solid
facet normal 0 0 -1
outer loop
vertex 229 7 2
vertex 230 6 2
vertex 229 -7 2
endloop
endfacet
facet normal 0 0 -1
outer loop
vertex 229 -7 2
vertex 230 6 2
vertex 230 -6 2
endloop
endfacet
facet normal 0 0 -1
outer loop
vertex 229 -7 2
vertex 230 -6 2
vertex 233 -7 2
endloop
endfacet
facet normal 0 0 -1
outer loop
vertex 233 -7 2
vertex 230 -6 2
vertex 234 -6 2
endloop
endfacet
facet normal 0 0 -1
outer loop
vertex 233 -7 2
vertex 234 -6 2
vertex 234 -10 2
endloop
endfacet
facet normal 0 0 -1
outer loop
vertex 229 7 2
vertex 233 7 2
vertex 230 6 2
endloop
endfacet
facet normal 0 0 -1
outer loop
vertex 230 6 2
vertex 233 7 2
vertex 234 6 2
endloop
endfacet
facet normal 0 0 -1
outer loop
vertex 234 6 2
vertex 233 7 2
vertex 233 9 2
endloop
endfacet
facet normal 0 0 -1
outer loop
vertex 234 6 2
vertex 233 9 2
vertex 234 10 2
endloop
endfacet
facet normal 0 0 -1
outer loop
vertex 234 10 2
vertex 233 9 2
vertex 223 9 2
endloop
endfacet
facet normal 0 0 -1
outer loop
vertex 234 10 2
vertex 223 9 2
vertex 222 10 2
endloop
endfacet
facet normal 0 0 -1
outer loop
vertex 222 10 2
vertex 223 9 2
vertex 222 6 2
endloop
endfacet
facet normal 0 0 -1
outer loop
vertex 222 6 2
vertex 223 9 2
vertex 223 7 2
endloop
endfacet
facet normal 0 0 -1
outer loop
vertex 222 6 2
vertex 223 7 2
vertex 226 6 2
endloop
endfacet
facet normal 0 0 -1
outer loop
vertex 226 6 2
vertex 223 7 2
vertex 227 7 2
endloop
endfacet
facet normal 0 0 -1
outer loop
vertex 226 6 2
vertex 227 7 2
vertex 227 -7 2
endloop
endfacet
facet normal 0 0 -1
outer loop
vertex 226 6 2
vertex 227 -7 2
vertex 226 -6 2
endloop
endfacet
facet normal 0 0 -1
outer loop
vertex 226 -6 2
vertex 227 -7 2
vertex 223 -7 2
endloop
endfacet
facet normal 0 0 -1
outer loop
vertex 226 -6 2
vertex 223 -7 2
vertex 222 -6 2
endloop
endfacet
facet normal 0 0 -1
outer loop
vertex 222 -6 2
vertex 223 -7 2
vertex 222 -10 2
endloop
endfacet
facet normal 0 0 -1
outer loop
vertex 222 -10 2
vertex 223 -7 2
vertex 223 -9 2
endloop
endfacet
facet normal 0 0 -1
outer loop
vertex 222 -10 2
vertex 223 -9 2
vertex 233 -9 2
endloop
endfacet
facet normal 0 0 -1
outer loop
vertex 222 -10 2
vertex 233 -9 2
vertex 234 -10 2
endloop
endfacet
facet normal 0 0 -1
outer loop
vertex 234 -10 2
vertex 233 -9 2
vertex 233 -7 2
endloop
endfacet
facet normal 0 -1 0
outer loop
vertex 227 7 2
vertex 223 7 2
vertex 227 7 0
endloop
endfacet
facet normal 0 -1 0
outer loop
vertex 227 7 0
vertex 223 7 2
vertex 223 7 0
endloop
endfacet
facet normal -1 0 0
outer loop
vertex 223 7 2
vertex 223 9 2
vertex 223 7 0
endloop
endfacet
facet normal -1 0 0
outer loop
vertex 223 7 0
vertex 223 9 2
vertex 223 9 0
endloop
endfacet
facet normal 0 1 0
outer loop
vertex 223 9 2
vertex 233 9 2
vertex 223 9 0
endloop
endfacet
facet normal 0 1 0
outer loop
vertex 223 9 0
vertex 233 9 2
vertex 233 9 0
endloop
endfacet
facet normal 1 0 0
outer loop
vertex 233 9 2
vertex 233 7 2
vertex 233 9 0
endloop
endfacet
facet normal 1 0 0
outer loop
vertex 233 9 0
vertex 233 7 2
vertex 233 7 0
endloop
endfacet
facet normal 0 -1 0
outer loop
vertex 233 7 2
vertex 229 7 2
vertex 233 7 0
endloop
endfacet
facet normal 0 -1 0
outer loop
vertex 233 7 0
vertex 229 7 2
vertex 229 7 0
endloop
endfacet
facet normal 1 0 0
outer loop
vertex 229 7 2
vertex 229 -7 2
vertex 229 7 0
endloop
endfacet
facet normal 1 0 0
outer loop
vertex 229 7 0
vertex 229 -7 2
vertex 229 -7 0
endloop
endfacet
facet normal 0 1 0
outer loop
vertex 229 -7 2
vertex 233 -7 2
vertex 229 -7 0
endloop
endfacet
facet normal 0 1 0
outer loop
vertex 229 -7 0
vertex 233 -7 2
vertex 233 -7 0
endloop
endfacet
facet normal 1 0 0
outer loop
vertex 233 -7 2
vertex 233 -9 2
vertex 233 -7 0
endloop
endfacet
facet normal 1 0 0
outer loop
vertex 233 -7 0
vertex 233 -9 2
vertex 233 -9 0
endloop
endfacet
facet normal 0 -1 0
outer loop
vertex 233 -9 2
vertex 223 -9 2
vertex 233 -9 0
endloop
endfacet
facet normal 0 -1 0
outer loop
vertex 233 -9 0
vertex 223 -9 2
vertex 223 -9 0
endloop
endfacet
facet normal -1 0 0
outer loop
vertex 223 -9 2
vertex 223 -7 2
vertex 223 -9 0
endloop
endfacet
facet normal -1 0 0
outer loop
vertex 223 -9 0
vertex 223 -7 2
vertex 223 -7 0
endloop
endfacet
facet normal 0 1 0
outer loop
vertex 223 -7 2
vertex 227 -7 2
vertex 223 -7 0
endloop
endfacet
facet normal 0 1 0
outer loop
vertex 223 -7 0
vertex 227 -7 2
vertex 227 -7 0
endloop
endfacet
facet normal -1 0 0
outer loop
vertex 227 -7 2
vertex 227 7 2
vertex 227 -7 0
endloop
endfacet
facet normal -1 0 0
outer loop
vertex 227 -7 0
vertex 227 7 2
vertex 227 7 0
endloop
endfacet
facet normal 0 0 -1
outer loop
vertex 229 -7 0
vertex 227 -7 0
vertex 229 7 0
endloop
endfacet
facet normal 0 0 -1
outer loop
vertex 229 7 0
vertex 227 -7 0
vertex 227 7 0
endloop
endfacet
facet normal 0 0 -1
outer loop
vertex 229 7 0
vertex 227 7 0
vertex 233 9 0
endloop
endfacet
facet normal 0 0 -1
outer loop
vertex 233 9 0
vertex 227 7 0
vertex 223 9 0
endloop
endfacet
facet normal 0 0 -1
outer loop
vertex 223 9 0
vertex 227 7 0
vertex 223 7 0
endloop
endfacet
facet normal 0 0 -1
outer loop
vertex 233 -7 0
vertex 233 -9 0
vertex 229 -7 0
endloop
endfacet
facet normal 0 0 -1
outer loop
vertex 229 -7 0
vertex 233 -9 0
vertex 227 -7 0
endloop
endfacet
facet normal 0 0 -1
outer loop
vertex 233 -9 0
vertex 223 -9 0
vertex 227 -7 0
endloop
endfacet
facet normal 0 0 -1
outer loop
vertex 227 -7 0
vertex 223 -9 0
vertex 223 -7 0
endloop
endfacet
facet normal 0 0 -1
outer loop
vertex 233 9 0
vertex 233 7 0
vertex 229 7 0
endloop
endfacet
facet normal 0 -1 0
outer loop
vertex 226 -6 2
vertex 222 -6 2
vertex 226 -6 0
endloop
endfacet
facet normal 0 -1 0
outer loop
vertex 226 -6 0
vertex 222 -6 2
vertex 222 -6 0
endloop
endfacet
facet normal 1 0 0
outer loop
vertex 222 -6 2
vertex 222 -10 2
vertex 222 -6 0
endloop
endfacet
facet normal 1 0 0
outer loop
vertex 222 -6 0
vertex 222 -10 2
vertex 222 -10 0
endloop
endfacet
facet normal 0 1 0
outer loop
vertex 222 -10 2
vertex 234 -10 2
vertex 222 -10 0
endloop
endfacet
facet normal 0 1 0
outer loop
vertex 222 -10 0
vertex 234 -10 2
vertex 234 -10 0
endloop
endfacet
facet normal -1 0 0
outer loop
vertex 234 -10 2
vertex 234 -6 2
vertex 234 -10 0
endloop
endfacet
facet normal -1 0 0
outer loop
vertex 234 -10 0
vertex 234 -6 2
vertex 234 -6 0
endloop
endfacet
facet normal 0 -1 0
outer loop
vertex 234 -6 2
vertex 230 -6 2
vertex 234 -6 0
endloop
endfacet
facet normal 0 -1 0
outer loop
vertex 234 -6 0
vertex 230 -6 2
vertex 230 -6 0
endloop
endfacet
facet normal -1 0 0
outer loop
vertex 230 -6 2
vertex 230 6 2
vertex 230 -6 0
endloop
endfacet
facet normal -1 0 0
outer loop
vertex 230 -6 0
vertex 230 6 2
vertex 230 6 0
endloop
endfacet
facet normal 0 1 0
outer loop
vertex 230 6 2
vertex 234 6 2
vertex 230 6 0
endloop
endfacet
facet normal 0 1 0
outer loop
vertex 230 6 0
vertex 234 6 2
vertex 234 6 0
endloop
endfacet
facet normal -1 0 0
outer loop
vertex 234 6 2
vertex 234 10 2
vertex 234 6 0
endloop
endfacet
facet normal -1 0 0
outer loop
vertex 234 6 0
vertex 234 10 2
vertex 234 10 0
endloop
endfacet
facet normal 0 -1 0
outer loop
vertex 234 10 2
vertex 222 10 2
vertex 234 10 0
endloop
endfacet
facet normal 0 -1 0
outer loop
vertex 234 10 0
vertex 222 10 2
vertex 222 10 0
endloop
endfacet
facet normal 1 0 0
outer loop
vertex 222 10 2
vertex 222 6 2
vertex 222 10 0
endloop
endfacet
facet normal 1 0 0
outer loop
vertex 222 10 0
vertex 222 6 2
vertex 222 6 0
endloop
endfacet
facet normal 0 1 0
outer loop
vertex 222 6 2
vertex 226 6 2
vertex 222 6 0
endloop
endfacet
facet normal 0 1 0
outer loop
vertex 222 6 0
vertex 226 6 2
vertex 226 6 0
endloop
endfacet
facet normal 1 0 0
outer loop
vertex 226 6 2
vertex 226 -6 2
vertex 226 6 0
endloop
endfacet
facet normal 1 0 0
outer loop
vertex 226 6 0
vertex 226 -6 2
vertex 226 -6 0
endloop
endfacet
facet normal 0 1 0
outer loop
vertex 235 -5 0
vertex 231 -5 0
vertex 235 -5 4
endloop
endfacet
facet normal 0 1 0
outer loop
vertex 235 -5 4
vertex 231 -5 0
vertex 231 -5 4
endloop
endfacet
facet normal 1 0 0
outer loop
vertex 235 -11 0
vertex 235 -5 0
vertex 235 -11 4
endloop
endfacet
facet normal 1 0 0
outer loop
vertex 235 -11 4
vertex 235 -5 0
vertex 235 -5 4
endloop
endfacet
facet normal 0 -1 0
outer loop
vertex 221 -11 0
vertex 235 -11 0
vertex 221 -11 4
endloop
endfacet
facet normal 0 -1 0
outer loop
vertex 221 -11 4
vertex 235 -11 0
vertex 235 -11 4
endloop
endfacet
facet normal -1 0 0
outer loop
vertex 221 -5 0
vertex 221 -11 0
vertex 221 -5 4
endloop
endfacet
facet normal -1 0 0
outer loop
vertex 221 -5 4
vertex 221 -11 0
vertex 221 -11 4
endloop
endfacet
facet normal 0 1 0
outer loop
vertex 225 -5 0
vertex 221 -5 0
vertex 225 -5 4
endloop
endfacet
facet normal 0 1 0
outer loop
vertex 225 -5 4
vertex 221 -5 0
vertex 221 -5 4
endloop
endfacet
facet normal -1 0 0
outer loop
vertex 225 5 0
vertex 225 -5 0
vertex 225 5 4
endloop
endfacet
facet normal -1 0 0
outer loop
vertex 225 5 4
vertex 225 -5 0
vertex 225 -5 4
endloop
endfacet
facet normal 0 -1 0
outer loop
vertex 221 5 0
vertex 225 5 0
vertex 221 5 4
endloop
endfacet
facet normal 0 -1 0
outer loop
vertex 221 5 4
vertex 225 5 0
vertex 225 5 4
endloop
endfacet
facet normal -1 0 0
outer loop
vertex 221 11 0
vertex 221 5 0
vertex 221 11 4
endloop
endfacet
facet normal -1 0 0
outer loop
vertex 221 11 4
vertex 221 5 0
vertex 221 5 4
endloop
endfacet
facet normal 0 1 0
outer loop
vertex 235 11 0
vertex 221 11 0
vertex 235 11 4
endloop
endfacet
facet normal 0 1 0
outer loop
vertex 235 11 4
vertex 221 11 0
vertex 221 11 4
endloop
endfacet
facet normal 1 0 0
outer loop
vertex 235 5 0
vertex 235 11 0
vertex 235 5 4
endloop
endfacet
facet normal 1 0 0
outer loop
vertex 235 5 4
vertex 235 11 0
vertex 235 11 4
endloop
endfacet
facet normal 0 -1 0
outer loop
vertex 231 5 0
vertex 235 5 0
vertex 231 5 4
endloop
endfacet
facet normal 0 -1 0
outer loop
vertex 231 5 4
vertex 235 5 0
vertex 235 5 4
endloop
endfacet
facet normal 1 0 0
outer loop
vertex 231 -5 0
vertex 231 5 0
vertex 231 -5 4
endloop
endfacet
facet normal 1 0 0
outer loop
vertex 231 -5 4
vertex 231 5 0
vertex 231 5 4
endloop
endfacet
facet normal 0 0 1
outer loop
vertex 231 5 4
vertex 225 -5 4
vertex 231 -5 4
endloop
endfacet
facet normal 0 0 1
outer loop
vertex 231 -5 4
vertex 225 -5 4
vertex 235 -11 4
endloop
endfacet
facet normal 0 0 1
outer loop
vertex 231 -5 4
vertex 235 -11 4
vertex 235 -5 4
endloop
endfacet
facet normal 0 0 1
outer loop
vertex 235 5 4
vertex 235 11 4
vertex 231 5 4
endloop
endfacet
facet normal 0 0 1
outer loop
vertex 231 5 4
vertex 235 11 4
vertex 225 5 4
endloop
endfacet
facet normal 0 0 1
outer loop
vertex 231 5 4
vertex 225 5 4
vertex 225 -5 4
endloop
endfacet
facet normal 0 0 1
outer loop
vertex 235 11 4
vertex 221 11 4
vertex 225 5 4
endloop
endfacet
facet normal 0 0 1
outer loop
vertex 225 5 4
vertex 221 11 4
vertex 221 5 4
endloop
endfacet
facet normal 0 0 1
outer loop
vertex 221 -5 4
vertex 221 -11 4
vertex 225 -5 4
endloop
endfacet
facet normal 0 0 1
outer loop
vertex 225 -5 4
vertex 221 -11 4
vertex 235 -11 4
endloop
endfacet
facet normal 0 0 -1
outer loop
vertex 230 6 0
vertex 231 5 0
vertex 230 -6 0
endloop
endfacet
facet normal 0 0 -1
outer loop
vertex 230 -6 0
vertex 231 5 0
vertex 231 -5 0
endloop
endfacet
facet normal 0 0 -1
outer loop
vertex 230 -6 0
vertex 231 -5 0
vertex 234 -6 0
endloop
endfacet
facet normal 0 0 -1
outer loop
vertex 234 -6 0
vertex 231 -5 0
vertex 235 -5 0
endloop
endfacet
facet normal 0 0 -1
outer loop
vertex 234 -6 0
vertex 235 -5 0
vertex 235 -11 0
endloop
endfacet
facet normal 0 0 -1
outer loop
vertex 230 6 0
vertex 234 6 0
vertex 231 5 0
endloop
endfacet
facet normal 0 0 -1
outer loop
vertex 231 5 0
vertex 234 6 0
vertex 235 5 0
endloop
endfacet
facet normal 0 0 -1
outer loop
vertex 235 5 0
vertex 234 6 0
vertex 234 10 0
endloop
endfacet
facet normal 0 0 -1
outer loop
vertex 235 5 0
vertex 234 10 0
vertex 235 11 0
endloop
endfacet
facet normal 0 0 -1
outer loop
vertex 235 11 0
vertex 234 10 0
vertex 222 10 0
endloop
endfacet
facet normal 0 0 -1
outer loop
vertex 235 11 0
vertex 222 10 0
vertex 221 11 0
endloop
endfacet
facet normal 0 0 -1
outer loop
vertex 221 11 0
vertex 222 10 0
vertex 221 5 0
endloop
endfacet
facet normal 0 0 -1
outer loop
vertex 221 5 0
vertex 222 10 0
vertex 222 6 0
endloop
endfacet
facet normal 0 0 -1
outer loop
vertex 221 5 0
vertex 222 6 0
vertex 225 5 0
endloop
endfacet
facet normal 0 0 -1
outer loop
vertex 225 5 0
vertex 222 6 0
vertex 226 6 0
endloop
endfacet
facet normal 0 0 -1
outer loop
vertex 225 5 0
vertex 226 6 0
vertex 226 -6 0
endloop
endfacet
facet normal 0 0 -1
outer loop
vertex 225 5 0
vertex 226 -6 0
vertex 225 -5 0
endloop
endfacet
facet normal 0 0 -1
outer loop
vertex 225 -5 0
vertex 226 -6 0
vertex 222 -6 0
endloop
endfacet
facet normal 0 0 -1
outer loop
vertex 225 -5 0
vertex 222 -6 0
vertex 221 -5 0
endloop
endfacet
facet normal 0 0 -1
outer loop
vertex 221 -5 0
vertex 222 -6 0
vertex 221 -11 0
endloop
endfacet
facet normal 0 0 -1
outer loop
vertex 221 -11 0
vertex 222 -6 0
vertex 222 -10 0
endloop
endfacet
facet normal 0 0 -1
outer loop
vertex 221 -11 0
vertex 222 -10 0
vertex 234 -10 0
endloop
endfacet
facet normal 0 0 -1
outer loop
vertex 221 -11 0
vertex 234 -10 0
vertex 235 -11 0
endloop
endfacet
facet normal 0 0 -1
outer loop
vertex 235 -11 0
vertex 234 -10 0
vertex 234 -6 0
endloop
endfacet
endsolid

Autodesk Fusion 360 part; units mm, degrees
sketch "Sketch1" plane through (0, 0, 0) normal (0, 0, 1) x (1, 0, 0)
  line L0 (230, 0) -> (230, -6)
  line L1 (230, -6) -> (234, -6)
  line L2 (234, -6) -> (234, -10)
  line L3 (234, -10) -> (222, -10)
  line L4 (222, -10) -> (222, -6)
  line L5 (222, -6) -> (226, -6)
  line L6 (226, -6) -> (226, 0)
  line L7 (226, 0) -> (230, 0)
  line L8 (230, 6) -> (234, 6)
  line L9 (234, 6) -> (234, 10)
  line L10 (234, 10) -> (222, 10)
  line L11 (222, 10) -> (222, 6)
  line L12 (222, 6) -> (226, 6)
  line L13 (226, 6) -> (226, 0)
  line L14 (230, 0) -> (230, 6)
  line L15 (229, 0) -> (229, 7)
  line L16 (229, 7) -> (233, 7)
  line L17 (233, 7) -> (233, 9)
  line L18 (233, 9) -> (223, 9)
  line L19 (223, 9) -> (223, 7)
  line L20 (223, 7) -> (227, 7)
  line L21 (227, 7) -> (227, 0)
  line L22 (229, 0) -> (229, -7)
  line L23 (229, -7) -> (233, -7)
  line L24 (233, -7) -> (233, -9)
  line L25 (233, -9) -> (223, -9)
  line L26 (223, -9) -> (223, -7)
  line L27 (223, -7) -> (227, -7)
  line L28 (227, -7) -> (227, 0)
  line L29 (235, -5) -> (235, -11)
  line L30 (235, -11) -> (221, -11)
  line L31 (221, -11) -> (221, -5)
  line L32 (221, -5) -> (225, -5)
  line L33 (225, -5) -> (225, 0)
  line L34 (225, 5) -> (225, 0)
  line L35 (221, 5) -> (225, 5)
  line L36 (221, 11) -> (221, 5)
  line L37 (235, 11) -> (221, 11)
  line L38 (235, 5) -> (235, 11)
  line L39 (231, 5) -> (235, 5)
  line L40 (231, 0) -> (231, 5)
  line L41 (231, 0) -> (231, -5)
  line L42 (231, -5) -> (235, -5)
  dimension "d775" = 6
  dimension "d776" = 4
  dimension "d777" = 12
  dimension "d778" = 4
  dimension "d779" = 4
  dimension "d780" = 4
  dimension "d781" = -1
  dimension "d782" = 1
  dimension "d783" = 1
extrude "Extrude1" add sketch "Sketch1" along normal blind 4 contours L7 L22 L23 L24 L25 L26 L27 L28 | L7 L15 L16 L17 L18 L19 L20 L21 | L29 L30 L31 L32 L33 L34 L35 L36 L37 L38 L39 L40 L41 L42 makes body 1 at (227.6667, -8.3333, 0) makes body 2 at (226, -10.6667, 0)
extrude "Extrude2" add sketch "Sketch1" along normal blind 2 from surface at 2 contours L0 L1 L2 L3 L4 L5 L6 L7 L22 L23 L24 L25 L26 L27 L28 | L7 L8 L9 L10 L11 L12 L13 L14 L15 L16 L17 L18 L19 L20 L21 bodies 1 2
